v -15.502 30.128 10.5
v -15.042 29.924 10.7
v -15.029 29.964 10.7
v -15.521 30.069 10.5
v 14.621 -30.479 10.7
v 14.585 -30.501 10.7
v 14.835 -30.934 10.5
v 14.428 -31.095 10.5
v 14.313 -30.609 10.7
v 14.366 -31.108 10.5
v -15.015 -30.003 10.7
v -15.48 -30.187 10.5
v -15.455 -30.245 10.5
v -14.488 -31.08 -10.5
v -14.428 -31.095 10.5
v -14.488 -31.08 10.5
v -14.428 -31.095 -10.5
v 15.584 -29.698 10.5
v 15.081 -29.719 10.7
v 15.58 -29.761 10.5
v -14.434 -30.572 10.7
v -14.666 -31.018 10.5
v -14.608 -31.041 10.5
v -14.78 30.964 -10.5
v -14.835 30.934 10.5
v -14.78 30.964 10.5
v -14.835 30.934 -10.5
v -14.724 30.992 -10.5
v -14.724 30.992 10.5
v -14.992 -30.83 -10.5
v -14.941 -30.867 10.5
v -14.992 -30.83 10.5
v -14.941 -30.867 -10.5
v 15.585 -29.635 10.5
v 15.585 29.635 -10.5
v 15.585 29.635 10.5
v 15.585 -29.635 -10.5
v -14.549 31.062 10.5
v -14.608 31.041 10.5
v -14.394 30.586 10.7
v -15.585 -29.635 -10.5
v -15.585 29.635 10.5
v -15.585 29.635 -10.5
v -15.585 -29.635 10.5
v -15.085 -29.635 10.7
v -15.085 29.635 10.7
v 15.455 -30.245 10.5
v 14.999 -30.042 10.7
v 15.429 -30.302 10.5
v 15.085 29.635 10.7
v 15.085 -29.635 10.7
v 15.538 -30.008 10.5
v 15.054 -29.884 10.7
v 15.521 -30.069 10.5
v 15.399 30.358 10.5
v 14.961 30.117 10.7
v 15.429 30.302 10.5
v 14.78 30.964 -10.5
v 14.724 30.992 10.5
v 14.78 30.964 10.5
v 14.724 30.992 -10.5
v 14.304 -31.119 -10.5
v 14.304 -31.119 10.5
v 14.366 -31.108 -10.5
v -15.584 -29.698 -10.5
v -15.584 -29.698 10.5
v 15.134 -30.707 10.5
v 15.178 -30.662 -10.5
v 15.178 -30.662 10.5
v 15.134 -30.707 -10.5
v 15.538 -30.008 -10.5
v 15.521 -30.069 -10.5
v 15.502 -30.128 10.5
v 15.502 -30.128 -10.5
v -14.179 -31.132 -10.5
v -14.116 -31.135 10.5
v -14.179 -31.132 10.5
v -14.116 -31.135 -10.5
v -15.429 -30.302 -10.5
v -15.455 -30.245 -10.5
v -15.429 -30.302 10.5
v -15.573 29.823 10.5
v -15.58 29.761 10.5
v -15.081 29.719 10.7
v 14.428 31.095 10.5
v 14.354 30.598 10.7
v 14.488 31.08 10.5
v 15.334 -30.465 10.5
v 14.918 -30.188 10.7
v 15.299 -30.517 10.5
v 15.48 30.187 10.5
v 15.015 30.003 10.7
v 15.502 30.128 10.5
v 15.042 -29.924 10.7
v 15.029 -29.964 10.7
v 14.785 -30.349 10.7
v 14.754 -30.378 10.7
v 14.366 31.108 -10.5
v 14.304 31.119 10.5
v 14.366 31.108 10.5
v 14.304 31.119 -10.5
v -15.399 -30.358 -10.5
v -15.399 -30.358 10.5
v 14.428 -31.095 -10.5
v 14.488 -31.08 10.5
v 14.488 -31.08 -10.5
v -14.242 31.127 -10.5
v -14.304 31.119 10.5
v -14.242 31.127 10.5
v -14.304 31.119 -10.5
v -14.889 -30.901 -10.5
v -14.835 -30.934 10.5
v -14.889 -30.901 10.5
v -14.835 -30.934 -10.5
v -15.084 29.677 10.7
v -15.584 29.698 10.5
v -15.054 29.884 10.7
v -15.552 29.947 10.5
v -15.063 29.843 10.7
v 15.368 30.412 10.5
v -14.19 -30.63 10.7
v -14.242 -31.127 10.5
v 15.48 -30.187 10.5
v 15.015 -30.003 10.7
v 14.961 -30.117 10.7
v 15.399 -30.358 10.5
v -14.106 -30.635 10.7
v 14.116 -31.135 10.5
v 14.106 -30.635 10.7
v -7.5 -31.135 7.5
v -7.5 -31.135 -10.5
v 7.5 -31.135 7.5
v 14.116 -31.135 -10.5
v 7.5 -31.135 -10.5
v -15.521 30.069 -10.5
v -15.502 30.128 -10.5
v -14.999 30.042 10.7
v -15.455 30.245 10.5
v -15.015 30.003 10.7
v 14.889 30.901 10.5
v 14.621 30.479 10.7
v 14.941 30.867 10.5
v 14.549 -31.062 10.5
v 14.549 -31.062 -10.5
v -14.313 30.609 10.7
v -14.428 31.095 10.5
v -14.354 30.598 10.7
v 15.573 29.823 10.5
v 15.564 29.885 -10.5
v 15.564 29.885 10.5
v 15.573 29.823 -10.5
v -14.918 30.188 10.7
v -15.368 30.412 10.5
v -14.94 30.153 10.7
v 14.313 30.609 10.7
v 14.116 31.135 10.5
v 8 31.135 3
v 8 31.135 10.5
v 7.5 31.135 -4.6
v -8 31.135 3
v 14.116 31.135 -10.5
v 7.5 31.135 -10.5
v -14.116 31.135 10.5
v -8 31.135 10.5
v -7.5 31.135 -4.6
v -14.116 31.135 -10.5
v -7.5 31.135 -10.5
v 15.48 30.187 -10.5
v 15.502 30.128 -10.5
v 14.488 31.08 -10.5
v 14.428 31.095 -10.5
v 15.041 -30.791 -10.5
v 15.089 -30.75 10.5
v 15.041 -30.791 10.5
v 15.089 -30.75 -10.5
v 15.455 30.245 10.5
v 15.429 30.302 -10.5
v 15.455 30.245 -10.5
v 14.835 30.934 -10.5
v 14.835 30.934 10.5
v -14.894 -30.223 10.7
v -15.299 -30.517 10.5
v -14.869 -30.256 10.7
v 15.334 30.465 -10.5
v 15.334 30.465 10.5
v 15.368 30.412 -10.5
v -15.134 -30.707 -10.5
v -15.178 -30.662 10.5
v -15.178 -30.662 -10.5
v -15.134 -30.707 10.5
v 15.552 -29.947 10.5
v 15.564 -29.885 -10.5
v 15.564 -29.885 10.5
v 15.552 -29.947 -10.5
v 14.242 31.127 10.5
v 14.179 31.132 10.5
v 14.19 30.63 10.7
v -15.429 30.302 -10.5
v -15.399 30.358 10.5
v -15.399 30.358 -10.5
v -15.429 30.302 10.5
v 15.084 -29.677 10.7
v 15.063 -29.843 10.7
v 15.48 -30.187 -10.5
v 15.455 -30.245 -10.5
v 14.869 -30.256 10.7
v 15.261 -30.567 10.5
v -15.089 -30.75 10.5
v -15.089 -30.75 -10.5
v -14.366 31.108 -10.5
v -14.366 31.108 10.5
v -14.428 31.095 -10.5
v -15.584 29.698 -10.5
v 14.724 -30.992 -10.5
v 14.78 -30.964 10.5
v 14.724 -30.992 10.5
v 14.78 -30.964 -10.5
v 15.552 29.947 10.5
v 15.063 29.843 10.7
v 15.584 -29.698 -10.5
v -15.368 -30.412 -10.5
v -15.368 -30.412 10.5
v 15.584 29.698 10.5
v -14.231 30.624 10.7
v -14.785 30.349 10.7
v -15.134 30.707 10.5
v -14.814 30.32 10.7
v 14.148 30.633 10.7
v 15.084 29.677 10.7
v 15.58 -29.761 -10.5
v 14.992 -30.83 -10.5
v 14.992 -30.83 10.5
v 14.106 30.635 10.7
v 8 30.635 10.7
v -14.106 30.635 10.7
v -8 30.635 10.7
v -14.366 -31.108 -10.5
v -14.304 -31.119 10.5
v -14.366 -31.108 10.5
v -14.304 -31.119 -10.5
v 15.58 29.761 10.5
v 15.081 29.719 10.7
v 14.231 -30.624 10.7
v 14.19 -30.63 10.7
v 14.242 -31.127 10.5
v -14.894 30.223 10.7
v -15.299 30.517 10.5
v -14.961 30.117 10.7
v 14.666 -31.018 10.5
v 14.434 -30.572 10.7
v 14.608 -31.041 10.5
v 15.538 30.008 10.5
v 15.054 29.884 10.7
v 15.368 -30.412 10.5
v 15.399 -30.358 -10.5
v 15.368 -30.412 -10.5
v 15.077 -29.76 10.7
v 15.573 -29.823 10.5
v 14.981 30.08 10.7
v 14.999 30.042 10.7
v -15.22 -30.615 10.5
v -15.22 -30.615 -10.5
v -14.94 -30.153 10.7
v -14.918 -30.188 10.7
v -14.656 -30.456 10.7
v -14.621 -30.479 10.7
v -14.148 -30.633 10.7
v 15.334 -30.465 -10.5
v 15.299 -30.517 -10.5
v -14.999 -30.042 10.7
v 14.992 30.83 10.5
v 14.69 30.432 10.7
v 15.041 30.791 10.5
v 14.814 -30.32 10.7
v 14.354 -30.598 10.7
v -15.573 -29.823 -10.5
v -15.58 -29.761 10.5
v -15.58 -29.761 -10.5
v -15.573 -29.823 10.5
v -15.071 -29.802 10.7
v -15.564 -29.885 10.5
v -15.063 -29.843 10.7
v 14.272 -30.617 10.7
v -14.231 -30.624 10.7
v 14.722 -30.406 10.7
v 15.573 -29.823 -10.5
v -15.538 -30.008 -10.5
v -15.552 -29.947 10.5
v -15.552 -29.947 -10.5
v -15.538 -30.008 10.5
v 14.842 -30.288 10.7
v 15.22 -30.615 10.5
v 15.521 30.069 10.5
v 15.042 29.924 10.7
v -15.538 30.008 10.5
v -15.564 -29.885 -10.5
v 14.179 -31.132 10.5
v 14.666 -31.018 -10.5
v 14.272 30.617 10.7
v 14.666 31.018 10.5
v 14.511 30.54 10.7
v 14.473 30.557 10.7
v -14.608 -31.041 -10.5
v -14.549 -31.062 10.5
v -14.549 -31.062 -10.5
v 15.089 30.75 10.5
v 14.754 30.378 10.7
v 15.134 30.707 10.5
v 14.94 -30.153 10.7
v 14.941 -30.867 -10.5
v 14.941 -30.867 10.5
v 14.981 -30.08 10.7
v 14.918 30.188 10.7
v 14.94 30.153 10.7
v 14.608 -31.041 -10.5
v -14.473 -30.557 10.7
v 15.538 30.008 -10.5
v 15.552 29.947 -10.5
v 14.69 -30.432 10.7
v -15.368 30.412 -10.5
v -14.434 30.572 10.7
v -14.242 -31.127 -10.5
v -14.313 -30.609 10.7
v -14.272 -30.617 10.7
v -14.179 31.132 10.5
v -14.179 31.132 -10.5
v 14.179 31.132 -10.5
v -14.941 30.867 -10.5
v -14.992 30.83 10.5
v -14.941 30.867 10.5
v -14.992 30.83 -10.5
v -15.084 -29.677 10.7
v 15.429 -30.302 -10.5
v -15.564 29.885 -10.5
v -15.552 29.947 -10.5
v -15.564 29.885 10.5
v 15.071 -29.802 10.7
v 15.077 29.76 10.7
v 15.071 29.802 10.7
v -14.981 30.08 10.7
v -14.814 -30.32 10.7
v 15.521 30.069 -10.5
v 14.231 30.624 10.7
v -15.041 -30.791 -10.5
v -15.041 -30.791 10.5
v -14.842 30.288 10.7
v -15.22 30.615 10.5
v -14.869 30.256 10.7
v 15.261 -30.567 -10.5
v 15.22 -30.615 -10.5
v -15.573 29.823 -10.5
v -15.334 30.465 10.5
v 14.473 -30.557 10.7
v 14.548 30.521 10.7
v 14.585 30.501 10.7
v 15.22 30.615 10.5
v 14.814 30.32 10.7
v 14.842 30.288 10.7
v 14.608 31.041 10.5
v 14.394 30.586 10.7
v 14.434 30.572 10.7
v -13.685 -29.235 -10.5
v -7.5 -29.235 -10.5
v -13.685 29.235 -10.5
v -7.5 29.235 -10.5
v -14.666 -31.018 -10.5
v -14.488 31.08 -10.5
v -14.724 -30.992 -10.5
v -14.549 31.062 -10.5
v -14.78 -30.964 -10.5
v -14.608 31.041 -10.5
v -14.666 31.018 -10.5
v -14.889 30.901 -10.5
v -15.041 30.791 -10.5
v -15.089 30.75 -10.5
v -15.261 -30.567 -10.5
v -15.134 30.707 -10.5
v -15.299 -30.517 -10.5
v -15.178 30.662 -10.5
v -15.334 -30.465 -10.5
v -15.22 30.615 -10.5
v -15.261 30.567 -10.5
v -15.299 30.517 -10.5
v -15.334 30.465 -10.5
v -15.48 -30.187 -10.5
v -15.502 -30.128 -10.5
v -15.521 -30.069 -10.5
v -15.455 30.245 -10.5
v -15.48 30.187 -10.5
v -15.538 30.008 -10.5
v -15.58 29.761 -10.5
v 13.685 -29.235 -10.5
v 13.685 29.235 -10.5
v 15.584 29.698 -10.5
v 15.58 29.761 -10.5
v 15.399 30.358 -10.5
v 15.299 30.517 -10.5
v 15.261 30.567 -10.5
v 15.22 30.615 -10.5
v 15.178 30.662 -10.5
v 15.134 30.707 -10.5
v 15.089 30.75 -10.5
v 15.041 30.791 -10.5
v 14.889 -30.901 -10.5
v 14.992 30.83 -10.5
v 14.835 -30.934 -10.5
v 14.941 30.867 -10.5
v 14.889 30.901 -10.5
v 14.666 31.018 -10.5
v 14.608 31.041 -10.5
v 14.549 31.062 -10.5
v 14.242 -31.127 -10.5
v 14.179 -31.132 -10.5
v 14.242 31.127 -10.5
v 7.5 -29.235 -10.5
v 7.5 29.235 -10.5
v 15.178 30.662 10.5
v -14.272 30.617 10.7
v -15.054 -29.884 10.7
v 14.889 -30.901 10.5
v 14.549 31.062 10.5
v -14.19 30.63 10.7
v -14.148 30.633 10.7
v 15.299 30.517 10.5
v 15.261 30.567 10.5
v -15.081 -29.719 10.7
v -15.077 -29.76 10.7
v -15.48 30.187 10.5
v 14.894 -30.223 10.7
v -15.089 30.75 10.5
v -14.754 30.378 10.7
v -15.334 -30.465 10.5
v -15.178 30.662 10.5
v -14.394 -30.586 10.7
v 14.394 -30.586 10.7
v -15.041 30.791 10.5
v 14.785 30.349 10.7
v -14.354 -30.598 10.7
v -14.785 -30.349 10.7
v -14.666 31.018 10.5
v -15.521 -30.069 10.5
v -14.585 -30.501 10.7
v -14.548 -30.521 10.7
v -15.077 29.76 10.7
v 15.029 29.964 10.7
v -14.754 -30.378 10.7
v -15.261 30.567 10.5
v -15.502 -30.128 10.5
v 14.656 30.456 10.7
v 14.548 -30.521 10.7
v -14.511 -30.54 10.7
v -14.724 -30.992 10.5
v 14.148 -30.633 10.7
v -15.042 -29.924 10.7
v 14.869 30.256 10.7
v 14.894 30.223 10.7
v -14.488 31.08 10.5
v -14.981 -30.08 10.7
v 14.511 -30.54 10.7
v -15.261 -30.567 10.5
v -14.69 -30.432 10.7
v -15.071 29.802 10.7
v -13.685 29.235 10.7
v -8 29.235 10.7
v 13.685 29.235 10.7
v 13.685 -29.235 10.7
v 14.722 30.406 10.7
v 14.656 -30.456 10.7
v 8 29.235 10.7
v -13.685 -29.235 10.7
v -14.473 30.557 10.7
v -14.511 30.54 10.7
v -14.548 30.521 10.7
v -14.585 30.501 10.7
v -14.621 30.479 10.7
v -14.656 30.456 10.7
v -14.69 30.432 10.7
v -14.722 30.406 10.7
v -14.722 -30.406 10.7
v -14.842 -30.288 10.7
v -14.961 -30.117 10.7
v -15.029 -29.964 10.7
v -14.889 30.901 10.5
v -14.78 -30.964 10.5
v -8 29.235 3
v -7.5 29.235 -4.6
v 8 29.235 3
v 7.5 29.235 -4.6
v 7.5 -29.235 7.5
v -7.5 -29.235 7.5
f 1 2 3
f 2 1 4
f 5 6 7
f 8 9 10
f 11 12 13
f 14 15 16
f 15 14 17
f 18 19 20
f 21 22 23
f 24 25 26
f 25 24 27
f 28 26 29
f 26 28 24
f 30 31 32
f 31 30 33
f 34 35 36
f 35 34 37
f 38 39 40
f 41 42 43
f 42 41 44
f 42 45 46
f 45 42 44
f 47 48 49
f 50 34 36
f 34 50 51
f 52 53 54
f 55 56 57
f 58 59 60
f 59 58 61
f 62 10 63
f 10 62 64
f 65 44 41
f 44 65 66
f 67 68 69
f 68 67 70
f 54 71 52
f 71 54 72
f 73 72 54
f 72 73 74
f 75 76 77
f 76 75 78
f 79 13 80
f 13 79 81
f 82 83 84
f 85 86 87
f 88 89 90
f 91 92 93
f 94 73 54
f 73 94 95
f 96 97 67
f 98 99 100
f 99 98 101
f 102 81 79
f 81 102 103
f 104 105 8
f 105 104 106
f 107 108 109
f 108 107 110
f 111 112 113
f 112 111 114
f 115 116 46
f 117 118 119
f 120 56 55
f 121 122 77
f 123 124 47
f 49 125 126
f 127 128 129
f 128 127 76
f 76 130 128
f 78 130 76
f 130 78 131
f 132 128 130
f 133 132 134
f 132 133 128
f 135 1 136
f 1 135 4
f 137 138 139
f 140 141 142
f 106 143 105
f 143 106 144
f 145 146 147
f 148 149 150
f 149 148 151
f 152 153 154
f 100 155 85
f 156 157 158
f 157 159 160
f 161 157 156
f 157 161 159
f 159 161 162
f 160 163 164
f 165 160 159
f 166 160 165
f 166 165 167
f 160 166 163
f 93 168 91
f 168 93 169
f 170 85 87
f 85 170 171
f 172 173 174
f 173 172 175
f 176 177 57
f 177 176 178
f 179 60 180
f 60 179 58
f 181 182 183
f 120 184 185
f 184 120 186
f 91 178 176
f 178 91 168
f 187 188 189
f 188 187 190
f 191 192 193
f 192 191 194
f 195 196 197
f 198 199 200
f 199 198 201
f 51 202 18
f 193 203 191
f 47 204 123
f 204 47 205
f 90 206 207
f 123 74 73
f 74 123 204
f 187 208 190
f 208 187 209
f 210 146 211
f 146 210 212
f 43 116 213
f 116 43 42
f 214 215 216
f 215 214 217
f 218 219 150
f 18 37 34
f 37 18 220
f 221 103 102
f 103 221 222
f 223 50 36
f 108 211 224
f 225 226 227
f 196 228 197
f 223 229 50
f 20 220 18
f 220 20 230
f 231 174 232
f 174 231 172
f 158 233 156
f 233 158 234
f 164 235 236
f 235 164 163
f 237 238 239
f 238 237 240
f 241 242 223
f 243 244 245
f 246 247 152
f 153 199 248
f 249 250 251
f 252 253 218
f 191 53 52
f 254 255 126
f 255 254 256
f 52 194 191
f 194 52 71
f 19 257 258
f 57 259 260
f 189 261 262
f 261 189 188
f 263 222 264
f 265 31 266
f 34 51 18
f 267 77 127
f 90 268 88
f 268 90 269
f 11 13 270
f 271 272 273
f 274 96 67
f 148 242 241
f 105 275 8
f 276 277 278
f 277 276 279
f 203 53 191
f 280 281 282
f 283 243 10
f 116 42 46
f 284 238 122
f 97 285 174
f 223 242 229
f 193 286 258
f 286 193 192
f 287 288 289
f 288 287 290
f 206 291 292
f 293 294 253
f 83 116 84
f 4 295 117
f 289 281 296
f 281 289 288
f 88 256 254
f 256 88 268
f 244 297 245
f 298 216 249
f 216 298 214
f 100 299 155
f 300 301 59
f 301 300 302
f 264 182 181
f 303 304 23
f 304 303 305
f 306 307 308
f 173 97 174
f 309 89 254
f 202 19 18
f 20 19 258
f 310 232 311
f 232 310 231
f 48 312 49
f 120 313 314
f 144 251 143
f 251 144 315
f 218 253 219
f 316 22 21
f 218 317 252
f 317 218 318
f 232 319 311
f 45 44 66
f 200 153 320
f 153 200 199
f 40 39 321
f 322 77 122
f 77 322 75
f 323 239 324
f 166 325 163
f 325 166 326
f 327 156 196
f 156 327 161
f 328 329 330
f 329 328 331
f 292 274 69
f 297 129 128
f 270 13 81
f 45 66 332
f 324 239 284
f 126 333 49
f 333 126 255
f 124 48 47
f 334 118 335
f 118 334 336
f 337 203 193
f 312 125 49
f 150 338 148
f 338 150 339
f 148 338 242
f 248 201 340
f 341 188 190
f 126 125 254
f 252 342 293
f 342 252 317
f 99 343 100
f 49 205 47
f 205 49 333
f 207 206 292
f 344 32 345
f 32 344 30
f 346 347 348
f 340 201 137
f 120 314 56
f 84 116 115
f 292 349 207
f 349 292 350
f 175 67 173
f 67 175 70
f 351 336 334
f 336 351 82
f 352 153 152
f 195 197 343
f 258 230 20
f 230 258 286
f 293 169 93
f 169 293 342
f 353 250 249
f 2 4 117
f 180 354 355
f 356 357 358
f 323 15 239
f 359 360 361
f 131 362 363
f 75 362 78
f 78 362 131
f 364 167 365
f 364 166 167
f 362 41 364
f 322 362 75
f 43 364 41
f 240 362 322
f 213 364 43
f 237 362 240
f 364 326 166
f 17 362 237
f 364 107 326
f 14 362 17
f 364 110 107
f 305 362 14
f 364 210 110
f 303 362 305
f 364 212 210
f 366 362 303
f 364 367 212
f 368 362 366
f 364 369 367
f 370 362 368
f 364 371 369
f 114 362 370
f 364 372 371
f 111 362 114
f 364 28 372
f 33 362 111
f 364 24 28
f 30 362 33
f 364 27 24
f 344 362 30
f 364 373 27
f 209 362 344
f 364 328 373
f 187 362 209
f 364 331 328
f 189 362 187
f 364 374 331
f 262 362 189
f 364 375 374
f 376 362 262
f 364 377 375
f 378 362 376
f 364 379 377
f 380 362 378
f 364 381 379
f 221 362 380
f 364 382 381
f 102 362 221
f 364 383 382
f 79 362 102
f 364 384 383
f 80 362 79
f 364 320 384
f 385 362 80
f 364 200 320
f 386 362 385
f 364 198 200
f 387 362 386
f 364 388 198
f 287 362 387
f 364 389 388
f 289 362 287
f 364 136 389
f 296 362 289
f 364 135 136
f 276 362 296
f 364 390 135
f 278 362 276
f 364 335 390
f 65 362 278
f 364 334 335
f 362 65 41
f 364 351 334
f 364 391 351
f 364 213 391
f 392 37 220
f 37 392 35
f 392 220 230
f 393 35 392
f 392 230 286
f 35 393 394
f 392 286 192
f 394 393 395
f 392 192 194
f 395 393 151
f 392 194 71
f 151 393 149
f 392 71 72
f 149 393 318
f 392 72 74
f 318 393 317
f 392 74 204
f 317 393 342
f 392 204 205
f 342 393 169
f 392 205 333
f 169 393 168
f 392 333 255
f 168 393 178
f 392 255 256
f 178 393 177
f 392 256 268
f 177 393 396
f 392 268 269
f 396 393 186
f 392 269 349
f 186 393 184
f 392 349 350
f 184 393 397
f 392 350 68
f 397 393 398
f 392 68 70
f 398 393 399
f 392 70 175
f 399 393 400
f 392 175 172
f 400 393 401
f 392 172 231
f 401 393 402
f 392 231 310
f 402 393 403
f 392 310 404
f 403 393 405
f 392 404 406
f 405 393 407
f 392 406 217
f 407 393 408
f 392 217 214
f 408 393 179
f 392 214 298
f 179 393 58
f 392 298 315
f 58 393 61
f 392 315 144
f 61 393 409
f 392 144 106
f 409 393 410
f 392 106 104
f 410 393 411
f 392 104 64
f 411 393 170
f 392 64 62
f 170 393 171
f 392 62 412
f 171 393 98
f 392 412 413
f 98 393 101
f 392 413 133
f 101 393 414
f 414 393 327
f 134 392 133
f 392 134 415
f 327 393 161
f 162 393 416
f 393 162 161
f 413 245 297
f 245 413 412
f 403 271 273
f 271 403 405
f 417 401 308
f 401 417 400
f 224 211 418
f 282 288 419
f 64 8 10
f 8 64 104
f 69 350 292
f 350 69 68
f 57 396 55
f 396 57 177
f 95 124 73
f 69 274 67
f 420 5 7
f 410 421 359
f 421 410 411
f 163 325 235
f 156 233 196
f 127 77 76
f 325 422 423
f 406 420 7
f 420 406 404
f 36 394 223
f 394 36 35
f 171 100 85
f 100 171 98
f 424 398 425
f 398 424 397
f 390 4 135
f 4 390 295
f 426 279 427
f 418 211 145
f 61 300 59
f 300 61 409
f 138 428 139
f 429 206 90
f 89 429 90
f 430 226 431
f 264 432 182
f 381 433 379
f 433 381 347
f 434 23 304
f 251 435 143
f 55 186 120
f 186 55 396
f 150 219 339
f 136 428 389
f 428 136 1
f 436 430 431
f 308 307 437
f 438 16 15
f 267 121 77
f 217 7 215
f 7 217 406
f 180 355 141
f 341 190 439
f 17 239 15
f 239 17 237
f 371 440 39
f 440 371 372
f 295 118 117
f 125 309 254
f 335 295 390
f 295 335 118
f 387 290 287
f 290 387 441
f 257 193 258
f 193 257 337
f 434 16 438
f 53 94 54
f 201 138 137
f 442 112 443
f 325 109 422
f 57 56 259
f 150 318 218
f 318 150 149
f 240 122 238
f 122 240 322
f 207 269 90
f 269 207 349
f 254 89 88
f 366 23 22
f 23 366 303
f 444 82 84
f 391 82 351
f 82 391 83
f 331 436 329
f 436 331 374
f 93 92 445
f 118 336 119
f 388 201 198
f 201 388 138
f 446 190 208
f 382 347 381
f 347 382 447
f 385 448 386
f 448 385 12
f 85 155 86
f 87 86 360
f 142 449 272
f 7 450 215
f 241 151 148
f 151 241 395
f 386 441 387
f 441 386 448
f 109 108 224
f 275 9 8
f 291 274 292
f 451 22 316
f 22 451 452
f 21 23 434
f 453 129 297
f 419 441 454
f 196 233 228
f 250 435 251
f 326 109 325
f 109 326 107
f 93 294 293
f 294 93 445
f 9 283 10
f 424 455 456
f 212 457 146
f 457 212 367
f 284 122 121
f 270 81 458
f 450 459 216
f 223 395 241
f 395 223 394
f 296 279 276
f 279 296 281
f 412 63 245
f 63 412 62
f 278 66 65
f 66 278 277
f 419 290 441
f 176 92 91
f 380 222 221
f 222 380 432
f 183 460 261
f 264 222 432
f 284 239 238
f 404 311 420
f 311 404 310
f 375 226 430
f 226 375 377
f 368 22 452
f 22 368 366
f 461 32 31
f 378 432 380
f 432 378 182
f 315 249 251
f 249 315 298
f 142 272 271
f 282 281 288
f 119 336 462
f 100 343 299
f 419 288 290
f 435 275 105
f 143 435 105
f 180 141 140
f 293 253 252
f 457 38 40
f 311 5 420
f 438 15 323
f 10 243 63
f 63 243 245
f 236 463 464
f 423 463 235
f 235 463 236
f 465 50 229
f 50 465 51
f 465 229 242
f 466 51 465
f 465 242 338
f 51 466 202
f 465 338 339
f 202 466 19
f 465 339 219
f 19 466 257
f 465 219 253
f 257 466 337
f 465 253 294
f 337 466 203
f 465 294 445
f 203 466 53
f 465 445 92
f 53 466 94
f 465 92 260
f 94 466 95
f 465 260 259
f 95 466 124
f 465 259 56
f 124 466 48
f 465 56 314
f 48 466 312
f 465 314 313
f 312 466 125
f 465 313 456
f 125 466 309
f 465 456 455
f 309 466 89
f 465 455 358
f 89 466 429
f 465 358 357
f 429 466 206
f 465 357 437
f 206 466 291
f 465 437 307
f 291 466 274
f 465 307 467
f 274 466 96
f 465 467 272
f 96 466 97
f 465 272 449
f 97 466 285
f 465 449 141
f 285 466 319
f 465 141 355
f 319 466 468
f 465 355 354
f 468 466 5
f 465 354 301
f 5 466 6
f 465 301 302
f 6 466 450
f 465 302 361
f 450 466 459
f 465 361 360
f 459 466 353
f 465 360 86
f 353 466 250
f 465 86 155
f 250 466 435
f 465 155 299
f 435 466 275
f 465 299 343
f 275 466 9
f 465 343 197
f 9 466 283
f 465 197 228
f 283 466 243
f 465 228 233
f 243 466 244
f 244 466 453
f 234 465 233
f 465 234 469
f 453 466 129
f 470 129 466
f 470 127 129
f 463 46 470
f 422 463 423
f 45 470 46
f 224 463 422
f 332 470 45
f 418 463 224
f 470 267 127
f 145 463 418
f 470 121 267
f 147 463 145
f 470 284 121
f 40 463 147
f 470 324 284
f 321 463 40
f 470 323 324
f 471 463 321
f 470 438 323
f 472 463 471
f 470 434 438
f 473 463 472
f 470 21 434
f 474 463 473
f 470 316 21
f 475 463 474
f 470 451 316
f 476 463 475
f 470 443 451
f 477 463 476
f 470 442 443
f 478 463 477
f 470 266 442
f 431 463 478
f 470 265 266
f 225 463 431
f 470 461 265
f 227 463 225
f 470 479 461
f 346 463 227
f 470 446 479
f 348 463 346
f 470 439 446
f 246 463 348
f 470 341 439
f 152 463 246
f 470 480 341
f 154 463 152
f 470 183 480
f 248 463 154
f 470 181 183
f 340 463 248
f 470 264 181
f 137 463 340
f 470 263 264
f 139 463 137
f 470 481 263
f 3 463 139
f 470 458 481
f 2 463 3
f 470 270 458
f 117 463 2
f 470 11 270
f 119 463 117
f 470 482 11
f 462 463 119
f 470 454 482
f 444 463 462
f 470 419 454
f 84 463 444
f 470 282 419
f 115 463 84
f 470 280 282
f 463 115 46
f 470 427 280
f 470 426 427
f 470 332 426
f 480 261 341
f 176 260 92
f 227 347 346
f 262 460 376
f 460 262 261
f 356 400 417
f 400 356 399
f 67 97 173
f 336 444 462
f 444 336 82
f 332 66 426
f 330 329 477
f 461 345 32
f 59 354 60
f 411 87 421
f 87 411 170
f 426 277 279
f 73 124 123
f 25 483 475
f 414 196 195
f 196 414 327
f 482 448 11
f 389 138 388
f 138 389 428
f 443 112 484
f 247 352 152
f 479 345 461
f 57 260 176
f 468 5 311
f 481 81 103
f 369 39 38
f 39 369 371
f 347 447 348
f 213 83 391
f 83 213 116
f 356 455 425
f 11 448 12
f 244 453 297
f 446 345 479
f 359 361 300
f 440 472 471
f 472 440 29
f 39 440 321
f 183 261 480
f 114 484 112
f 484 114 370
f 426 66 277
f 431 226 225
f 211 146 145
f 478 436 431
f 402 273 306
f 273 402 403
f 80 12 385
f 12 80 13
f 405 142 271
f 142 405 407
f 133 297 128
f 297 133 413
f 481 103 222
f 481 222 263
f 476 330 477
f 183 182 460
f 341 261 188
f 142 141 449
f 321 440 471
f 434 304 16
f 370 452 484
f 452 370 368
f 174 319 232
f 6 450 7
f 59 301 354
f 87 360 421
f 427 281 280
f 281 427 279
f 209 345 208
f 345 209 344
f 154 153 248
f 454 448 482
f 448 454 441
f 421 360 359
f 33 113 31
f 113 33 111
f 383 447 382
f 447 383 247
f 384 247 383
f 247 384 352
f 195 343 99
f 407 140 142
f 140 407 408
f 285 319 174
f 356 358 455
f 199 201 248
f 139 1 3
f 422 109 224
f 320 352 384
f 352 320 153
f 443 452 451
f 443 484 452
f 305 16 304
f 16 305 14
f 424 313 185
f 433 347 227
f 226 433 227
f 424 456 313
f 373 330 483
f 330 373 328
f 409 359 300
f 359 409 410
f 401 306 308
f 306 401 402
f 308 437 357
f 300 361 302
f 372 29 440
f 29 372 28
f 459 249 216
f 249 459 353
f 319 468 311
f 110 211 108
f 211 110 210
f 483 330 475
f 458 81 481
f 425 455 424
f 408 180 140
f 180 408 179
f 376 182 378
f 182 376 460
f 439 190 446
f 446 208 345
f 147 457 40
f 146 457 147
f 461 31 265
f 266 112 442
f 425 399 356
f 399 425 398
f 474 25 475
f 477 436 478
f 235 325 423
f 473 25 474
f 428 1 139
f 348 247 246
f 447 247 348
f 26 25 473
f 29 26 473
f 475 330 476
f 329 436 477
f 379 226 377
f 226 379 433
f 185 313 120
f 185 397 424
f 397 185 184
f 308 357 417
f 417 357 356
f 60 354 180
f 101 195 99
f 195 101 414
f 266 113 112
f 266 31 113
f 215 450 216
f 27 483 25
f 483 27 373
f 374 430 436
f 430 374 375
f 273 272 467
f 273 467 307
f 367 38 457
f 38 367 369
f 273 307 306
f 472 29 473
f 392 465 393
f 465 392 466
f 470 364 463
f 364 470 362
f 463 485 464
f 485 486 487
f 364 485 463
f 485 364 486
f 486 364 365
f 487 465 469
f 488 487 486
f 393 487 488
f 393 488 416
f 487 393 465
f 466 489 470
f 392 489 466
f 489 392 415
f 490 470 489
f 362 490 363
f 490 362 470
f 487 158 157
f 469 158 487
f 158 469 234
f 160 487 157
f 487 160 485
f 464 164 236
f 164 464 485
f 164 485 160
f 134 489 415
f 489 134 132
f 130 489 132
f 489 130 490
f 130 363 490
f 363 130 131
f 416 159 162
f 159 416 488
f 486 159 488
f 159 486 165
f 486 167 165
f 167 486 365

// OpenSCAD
// A simple case for the MiSTeryNano Lite  (https://github.com/harbaum/MiSTeryNano)

// Original author: Oliver Jaksch
// CC BY-NC-SA 4.0 (https://creativecommons.org/licenses/by-nc-sa/4.0/)

// Top
difference() {
    $fn=150;
    minkowski() {
        cube([28.17, 59.27, 21.0], true);
        cylinder(0.2, 1.5);
    }
    // Frame only
    translate ([0, 0, 1.35]) cube([27.37, 58.47, 24], true);
    // Frame and closing lid
    //translate ([0, 0, -3.35]) cube([27.37, 58.47, 24], true);

    // Cutout Tang Nano 20k HDMI
    translate ([0, 30, 7]) cube([16, 3, 8], true);
    // Cutout Tang Nano 20k USB-C
    translate ([0, -30, 2.5]) cube([15, 3, 10], true);

    // Cutout for USB-C/RPi
    translate ([0, 30.1, -7.6]) cube([15, 3, 6], true);
    // Cutout for USB-A/RPi
    ////translate ([0, -29.4, -0.1]) cube([14.5, 0.5, 21], true);
    translate ([0, -30, -6.5]) cube([15, 3, 8.1], true);

    // Cutout Tang Nano 20k Display
    // 6mm from the top edge, width 24mm, height 2mm
    // NOT TESTED
    //translate ([14.5, 8, 3.7]) cube([2.5, 24, 2], true);
}
